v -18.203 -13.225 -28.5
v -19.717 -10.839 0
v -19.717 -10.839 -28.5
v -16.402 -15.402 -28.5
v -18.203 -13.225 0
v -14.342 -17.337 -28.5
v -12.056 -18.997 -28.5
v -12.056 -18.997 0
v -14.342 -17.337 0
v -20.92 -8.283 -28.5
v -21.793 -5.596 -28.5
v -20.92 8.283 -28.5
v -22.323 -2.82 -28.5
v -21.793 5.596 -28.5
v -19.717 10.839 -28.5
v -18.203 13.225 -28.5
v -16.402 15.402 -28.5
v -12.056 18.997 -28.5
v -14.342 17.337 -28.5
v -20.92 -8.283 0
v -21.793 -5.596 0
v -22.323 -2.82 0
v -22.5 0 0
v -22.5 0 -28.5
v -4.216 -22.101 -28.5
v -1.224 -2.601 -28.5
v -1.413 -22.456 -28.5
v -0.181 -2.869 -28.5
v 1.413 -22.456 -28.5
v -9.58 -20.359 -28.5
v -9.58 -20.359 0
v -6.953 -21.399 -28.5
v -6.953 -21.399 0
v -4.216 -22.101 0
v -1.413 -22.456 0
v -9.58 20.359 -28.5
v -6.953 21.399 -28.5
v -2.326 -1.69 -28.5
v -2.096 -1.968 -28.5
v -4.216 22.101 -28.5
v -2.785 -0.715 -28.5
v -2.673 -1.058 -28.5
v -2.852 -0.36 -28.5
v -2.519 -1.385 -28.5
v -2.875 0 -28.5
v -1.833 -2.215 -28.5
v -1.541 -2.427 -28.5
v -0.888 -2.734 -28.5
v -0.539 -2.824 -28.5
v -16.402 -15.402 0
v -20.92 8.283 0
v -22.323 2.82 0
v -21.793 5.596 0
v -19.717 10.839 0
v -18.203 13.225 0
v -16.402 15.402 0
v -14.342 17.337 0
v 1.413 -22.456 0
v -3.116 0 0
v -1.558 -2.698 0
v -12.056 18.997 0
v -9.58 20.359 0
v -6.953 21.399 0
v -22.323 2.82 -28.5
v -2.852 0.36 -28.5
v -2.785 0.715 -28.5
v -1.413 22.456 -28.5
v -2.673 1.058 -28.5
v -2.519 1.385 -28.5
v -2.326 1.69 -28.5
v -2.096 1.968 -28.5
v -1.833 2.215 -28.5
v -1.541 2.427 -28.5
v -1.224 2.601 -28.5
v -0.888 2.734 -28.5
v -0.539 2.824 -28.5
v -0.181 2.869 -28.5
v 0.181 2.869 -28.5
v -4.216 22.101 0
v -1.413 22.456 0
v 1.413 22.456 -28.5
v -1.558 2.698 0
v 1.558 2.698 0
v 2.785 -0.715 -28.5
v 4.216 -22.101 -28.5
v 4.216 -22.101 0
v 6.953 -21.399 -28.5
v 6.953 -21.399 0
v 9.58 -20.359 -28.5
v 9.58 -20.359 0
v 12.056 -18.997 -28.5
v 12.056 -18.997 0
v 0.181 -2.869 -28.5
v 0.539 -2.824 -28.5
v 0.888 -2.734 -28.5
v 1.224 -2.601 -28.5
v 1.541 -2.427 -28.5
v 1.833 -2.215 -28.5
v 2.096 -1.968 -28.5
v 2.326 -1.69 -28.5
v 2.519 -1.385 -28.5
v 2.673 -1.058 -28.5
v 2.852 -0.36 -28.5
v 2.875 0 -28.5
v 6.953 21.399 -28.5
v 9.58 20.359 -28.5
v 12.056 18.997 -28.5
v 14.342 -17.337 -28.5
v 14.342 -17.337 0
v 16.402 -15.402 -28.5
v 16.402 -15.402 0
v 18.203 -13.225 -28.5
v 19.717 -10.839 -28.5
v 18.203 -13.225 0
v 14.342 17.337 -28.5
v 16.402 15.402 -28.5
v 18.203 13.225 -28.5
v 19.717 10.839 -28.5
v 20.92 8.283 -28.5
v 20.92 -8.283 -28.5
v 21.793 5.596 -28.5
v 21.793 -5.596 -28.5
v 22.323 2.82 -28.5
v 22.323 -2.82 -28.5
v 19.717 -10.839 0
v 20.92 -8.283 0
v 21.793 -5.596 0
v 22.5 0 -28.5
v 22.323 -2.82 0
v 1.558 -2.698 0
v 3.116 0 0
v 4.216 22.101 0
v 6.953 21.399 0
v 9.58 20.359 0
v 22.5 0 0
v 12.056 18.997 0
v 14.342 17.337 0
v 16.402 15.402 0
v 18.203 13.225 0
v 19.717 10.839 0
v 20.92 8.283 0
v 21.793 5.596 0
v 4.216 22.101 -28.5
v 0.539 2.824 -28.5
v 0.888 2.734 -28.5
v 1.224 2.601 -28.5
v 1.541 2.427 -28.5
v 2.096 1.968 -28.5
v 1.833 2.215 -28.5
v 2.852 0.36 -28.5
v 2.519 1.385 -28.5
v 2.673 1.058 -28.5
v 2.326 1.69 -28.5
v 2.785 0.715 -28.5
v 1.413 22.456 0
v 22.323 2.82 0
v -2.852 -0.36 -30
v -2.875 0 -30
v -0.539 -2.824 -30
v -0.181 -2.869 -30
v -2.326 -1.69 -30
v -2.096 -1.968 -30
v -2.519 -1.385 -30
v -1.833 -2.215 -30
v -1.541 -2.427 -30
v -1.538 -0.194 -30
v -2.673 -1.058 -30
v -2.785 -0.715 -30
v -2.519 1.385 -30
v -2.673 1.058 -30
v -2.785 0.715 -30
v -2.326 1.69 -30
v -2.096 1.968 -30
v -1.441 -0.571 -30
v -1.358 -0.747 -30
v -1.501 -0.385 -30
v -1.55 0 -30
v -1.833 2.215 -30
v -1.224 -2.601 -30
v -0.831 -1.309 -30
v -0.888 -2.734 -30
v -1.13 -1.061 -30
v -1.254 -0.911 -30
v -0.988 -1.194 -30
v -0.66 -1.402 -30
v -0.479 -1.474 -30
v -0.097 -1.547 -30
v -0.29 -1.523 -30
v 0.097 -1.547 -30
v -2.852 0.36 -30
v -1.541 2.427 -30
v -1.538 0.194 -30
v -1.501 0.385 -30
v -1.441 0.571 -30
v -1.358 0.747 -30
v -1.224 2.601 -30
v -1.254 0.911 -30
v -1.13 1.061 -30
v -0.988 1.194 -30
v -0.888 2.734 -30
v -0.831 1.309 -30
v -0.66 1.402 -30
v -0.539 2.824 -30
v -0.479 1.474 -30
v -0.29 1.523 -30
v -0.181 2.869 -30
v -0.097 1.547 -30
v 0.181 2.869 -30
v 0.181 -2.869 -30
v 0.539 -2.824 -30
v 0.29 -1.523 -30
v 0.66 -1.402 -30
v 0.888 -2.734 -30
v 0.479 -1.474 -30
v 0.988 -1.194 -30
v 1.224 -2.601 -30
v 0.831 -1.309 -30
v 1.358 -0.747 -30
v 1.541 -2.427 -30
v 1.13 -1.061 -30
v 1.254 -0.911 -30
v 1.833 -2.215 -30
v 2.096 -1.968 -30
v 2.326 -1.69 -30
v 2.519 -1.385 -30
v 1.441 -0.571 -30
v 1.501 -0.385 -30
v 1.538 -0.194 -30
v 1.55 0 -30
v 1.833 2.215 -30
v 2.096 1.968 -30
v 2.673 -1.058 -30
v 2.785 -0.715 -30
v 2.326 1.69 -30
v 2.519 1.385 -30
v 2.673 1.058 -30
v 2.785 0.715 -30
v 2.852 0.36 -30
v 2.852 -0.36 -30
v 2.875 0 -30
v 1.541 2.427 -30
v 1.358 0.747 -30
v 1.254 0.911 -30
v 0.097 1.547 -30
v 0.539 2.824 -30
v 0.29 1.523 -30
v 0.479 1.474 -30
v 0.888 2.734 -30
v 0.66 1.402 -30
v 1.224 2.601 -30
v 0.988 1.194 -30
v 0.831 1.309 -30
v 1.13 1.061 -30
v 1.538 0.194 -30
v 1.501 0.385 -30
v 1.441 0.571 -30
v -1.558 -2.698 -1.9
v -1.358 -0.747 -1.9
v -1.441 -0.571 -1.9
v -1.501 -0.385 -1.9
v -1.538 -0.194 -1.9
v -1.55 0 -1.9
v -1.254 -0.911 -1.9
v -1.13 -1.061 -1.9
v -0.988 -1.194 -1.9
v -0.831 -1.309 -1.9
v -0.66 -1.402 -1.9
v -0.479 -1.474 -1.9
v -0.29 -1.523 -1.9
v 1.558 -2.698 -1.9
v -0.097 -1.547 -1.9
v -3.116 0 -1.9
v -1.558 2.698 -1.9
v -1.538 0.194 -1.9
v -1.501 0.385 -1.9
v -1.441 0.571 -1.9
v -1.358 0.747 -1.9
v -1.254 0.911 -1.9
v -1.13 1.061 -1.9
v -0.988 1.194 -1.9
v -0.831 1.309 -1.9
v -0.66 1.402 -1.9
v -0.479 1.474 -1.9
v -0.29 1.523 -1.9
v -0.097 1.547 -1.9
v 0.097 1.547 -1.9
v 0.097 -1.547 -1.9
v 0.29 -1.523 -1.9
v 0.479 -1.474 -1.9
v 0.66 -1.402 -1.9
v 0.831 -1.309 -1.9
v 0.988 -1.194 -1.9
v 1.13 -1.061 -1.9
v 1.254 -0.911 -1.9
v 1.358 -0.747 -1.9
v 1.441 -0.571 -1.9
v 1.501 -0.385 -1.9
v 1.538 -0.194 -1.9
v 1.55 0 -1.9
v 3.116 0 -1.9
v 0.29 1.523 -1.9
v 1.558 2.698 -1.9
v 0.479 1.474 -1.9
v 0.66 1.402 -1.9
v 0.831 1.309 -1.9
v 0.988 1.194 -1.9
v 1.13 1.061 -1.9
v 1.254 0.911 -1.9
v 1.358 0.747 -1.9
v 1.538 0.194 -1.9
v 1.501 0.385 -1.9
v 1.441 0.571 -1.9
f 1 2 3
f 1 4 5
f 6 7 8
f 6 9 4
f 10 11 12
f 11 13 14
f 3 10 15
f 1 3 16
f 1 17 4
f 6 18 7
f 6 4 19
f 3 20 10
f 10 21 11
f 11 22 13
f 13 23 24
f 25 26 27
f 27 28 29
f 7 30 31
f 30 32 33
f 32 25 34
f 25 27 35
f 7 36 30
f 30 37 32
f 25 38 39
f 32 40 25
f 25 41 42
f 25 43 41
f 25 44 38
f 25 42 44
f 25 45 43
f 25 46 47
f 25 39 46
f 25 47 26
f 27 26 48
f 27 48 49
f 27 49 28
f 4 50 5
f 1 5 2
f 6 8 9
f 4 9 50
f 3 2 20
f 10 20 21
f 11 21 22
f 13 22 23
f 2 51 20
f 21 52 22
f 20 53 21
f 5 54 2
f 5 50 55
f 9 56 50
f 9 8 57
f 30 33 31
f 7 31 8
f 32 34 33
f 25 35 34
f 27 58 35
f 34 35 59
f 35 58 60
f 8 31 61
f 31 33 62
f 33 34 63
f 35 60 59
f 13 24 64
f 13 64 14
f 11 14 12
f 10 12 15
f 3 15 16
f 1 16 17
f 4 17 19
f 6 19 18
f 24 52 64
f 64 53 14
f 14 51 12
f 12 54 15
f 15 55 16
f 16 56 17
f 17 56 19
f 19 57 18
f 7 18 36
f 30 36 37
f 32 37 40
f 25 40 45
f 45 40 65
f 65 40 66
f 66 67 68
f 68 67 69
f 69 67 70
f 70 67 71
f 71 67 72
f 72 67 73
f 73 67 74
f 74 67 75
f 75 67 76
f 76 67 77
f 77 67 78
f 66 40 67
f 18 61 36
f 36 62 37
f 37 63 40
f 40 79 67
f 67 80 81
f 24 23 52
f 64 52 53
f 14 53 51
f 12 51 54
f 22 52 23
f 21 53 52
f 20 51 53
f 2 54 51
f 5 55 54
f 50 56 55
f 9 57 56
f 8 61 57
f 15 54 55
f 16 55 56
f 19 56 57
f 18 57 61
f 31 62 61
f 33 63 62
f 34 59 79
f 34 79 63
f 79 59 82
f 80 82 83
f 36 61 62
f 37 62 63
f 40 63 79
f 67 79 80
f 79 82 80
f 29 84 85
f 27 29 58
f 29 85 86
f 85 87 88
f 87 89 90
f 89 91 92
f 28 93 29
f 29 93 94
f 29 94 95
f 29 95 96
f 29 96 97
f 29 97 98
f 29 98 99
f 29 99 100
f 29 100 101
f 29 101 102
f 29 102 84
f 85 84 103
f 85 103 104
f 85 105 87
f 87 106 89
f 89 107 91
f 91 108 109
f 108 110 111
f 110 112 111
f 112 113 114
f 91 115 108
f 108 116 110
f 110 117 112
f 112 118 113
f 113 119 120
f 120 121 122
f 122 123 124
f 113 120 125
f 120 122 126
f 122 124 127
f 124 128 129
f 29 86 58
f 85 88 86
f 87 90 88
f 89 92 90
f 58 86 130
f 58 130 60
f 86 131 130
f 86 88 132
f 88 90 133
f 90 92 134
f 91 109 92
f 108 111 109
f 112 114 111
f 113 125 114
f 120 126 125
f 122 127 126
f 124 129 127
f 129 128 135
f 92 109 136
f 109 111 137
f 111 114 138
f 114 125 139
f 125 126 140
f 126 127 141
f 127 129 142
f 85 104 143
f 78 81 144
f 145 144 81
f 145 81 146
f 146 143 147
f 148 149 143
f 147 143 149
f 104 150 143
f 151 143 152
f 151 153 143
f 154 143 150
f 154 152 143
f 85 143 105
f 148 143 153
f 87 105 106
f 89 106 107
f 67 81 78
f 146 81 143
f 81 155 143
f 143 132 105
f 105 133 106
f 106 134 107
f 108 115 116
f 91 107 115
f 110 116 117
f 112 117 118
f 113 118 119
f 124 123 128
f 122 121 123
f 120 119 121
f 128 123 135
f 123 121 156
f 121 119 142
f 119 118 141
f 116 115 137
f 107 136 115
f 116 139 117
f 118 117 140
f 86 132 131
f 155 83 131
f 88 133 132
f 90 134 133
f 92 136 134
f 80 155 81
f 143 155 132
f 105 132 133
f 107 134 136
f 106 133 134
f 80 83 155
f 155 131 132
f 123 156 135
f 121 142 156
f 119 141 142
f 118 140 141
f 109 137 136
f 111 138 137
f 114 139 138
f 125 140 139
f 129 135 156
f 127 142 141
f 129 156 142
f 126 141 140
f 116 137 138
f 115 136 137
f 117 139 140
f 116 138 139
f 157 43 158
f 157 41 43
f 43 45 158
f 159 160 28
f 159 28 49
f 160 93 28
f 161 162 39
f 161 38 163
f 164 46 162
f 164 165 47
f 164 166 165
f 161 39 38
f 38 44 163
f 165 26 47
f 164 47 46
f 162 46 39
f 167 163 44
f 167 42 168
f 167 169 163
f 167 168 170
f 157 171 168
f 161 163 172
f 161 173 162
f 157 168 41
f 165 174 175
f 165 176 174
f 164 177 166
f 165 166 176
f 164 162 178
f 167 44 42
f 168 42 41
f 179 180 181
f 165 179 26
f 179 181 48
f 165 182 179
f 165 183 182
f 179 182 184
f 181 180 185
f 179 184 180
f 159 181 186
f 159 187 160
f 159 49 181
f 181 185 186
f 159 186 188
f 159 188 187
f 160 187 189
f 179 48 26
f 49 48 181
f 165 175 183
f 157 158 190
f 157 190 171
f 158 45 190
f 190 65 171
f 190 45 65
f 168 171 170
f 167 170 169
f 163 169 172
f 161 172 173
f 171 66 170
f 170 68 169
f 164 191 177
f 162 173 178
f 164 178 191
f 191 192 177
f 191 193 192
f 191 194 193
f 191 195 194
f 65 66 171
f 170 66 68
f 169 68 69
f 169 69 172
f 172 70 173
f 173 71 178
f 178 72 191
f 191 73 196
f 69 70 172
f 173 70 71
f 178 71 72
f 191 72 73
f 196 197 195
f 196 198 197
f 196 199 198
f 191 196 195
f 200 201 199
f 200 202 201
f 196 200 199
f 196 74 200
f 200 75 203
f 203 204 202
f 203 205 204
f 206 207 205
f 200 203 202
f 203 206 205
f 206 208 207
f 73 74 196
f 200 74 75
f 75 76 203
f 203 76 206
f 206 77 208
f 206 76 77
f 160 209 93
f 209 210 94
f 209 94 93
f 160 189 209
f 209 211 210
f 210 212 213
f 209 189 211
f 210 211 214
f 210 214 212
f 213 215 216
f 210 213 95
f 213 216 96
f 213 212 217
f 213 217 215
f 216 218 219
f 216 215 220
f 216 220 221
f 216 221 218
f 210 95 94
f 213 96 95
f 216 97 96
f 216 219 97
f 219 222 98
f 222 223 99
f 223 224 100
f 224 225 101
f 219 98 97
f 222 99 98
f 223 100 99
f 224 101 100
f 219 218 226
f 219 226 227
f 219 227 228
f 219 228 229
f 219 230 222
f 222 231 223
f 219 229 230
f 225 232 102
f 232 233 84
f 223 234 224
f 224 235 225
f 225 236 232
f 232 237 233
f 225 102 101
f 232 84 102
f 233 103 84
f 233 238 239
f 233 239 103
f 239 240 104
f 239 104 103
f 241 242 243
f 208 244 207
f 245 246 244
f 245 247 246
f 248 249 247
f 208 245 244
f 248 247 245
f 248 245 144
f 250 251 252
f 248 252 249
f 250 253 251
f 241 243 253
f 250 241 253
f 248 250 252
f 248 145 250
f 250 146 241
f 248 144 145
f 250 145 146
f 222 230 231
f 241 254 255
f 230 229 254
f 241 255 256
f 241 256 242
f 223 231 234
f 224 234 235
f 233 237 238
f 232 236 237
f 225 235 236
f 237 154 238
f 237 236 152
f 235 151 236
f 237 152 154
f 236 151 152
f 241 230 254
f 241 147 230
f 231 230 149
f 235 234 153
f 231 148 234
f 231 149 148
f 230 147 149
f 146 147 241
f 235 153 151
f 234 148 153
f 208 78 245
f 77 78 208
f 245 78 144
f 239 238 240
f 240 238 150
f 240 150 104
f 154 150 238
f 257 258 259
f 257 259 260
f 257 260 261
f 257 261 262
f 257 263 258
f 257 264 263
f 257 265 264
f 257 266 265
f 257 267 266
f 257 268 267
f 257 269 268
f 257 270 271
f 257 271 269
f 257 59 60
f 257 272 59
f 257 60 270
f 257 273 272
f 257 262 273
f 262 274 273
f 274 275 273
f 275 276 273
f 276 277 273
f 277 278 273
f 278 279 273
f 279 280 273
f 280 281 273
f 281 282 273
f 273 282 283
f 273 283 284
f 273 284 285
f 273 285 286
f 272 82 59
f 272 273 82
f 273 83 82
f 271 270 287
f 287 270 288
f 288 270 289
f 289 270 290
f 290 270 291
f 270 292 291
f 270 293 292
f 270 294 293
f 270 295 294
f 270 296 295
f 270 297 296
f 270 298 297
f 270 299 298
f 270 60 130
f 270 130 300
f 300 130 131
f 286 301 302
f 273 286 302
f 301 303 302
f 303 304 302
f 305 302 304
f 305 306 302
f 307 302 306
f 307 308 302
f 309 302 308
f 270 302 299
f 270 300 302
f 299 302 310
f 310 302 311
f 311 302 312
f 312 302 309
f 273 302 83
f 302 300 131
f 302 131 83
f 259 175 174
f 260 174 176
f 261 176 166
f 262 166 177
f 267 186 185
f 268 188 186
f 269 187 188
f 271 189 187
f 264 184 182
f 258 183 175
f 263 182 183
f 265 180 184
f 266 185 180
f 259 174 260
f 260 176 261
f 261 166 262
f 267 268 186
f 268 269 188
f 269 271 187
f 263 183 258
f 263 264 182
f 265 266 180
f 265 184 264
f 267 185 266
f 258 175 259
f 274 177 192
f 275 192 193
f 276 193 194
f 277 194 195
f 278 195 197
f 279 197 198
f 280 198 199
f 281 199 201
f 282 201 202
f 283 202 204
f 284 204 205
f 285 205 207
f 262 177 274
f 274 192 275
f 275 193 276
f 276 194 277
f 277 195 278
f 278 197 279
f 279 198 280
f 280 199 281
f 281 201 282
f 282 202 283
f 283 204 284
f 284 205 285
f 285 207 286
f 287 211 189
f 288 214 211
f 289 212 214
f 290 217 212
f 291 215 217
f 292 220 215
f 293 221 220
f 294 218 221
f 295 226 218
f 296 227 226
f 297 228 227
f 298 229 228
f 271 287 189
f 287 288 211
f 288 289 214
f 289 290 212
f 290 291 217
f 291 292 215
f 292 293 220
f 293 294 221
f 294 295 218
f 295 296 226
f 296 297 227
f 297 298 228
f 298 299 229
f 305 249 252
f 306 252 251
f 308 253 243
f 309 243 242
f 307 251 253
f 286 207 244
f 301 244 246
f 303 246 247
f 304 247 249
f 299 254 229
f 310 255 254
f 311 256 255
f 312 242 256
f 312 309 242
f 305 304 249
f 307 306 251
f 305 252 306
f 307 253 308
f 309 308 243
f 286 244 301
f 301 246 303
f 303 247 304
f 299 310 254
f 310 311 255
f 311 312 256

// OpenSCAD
$fn = 50;


difference() {
	union() {
		translate(v = [0, 0, -28.5000000000]) {
			cylinder(h = 28.5000000000, r = 22.5000000000);
		}
		#translate(v = [0, 0, -30.0000000000]) {
			cylinder(h = 30, r = 2.8750000000);
		}
	}
	union() {
		translate(v = [0, 0, 0]) {
			rotate(a = [0, 0, 0]) {
				difference() {
					union() {
						translate(v = [0, 0, -1.9000000000]) {
							linear_extrude(height = 1.9000000000) {
								polygon(points = [[3.1158000000, 0.0000000000], [1.5579000000, 2.6983619531], [-1.5579000000, 2.6983619531], [-3.1158000000, 0.0000000000], [-1.5579000000, -2.6983619531], [1.5579000000, -2.6983619531]]);
							}
						}
					}
					union();
				}
			}
		}
		#translate(v = [0, 0, -100.0000000000]) {
			cylinder(h = 200, r = 1.5500000000);
		}
	}
}
